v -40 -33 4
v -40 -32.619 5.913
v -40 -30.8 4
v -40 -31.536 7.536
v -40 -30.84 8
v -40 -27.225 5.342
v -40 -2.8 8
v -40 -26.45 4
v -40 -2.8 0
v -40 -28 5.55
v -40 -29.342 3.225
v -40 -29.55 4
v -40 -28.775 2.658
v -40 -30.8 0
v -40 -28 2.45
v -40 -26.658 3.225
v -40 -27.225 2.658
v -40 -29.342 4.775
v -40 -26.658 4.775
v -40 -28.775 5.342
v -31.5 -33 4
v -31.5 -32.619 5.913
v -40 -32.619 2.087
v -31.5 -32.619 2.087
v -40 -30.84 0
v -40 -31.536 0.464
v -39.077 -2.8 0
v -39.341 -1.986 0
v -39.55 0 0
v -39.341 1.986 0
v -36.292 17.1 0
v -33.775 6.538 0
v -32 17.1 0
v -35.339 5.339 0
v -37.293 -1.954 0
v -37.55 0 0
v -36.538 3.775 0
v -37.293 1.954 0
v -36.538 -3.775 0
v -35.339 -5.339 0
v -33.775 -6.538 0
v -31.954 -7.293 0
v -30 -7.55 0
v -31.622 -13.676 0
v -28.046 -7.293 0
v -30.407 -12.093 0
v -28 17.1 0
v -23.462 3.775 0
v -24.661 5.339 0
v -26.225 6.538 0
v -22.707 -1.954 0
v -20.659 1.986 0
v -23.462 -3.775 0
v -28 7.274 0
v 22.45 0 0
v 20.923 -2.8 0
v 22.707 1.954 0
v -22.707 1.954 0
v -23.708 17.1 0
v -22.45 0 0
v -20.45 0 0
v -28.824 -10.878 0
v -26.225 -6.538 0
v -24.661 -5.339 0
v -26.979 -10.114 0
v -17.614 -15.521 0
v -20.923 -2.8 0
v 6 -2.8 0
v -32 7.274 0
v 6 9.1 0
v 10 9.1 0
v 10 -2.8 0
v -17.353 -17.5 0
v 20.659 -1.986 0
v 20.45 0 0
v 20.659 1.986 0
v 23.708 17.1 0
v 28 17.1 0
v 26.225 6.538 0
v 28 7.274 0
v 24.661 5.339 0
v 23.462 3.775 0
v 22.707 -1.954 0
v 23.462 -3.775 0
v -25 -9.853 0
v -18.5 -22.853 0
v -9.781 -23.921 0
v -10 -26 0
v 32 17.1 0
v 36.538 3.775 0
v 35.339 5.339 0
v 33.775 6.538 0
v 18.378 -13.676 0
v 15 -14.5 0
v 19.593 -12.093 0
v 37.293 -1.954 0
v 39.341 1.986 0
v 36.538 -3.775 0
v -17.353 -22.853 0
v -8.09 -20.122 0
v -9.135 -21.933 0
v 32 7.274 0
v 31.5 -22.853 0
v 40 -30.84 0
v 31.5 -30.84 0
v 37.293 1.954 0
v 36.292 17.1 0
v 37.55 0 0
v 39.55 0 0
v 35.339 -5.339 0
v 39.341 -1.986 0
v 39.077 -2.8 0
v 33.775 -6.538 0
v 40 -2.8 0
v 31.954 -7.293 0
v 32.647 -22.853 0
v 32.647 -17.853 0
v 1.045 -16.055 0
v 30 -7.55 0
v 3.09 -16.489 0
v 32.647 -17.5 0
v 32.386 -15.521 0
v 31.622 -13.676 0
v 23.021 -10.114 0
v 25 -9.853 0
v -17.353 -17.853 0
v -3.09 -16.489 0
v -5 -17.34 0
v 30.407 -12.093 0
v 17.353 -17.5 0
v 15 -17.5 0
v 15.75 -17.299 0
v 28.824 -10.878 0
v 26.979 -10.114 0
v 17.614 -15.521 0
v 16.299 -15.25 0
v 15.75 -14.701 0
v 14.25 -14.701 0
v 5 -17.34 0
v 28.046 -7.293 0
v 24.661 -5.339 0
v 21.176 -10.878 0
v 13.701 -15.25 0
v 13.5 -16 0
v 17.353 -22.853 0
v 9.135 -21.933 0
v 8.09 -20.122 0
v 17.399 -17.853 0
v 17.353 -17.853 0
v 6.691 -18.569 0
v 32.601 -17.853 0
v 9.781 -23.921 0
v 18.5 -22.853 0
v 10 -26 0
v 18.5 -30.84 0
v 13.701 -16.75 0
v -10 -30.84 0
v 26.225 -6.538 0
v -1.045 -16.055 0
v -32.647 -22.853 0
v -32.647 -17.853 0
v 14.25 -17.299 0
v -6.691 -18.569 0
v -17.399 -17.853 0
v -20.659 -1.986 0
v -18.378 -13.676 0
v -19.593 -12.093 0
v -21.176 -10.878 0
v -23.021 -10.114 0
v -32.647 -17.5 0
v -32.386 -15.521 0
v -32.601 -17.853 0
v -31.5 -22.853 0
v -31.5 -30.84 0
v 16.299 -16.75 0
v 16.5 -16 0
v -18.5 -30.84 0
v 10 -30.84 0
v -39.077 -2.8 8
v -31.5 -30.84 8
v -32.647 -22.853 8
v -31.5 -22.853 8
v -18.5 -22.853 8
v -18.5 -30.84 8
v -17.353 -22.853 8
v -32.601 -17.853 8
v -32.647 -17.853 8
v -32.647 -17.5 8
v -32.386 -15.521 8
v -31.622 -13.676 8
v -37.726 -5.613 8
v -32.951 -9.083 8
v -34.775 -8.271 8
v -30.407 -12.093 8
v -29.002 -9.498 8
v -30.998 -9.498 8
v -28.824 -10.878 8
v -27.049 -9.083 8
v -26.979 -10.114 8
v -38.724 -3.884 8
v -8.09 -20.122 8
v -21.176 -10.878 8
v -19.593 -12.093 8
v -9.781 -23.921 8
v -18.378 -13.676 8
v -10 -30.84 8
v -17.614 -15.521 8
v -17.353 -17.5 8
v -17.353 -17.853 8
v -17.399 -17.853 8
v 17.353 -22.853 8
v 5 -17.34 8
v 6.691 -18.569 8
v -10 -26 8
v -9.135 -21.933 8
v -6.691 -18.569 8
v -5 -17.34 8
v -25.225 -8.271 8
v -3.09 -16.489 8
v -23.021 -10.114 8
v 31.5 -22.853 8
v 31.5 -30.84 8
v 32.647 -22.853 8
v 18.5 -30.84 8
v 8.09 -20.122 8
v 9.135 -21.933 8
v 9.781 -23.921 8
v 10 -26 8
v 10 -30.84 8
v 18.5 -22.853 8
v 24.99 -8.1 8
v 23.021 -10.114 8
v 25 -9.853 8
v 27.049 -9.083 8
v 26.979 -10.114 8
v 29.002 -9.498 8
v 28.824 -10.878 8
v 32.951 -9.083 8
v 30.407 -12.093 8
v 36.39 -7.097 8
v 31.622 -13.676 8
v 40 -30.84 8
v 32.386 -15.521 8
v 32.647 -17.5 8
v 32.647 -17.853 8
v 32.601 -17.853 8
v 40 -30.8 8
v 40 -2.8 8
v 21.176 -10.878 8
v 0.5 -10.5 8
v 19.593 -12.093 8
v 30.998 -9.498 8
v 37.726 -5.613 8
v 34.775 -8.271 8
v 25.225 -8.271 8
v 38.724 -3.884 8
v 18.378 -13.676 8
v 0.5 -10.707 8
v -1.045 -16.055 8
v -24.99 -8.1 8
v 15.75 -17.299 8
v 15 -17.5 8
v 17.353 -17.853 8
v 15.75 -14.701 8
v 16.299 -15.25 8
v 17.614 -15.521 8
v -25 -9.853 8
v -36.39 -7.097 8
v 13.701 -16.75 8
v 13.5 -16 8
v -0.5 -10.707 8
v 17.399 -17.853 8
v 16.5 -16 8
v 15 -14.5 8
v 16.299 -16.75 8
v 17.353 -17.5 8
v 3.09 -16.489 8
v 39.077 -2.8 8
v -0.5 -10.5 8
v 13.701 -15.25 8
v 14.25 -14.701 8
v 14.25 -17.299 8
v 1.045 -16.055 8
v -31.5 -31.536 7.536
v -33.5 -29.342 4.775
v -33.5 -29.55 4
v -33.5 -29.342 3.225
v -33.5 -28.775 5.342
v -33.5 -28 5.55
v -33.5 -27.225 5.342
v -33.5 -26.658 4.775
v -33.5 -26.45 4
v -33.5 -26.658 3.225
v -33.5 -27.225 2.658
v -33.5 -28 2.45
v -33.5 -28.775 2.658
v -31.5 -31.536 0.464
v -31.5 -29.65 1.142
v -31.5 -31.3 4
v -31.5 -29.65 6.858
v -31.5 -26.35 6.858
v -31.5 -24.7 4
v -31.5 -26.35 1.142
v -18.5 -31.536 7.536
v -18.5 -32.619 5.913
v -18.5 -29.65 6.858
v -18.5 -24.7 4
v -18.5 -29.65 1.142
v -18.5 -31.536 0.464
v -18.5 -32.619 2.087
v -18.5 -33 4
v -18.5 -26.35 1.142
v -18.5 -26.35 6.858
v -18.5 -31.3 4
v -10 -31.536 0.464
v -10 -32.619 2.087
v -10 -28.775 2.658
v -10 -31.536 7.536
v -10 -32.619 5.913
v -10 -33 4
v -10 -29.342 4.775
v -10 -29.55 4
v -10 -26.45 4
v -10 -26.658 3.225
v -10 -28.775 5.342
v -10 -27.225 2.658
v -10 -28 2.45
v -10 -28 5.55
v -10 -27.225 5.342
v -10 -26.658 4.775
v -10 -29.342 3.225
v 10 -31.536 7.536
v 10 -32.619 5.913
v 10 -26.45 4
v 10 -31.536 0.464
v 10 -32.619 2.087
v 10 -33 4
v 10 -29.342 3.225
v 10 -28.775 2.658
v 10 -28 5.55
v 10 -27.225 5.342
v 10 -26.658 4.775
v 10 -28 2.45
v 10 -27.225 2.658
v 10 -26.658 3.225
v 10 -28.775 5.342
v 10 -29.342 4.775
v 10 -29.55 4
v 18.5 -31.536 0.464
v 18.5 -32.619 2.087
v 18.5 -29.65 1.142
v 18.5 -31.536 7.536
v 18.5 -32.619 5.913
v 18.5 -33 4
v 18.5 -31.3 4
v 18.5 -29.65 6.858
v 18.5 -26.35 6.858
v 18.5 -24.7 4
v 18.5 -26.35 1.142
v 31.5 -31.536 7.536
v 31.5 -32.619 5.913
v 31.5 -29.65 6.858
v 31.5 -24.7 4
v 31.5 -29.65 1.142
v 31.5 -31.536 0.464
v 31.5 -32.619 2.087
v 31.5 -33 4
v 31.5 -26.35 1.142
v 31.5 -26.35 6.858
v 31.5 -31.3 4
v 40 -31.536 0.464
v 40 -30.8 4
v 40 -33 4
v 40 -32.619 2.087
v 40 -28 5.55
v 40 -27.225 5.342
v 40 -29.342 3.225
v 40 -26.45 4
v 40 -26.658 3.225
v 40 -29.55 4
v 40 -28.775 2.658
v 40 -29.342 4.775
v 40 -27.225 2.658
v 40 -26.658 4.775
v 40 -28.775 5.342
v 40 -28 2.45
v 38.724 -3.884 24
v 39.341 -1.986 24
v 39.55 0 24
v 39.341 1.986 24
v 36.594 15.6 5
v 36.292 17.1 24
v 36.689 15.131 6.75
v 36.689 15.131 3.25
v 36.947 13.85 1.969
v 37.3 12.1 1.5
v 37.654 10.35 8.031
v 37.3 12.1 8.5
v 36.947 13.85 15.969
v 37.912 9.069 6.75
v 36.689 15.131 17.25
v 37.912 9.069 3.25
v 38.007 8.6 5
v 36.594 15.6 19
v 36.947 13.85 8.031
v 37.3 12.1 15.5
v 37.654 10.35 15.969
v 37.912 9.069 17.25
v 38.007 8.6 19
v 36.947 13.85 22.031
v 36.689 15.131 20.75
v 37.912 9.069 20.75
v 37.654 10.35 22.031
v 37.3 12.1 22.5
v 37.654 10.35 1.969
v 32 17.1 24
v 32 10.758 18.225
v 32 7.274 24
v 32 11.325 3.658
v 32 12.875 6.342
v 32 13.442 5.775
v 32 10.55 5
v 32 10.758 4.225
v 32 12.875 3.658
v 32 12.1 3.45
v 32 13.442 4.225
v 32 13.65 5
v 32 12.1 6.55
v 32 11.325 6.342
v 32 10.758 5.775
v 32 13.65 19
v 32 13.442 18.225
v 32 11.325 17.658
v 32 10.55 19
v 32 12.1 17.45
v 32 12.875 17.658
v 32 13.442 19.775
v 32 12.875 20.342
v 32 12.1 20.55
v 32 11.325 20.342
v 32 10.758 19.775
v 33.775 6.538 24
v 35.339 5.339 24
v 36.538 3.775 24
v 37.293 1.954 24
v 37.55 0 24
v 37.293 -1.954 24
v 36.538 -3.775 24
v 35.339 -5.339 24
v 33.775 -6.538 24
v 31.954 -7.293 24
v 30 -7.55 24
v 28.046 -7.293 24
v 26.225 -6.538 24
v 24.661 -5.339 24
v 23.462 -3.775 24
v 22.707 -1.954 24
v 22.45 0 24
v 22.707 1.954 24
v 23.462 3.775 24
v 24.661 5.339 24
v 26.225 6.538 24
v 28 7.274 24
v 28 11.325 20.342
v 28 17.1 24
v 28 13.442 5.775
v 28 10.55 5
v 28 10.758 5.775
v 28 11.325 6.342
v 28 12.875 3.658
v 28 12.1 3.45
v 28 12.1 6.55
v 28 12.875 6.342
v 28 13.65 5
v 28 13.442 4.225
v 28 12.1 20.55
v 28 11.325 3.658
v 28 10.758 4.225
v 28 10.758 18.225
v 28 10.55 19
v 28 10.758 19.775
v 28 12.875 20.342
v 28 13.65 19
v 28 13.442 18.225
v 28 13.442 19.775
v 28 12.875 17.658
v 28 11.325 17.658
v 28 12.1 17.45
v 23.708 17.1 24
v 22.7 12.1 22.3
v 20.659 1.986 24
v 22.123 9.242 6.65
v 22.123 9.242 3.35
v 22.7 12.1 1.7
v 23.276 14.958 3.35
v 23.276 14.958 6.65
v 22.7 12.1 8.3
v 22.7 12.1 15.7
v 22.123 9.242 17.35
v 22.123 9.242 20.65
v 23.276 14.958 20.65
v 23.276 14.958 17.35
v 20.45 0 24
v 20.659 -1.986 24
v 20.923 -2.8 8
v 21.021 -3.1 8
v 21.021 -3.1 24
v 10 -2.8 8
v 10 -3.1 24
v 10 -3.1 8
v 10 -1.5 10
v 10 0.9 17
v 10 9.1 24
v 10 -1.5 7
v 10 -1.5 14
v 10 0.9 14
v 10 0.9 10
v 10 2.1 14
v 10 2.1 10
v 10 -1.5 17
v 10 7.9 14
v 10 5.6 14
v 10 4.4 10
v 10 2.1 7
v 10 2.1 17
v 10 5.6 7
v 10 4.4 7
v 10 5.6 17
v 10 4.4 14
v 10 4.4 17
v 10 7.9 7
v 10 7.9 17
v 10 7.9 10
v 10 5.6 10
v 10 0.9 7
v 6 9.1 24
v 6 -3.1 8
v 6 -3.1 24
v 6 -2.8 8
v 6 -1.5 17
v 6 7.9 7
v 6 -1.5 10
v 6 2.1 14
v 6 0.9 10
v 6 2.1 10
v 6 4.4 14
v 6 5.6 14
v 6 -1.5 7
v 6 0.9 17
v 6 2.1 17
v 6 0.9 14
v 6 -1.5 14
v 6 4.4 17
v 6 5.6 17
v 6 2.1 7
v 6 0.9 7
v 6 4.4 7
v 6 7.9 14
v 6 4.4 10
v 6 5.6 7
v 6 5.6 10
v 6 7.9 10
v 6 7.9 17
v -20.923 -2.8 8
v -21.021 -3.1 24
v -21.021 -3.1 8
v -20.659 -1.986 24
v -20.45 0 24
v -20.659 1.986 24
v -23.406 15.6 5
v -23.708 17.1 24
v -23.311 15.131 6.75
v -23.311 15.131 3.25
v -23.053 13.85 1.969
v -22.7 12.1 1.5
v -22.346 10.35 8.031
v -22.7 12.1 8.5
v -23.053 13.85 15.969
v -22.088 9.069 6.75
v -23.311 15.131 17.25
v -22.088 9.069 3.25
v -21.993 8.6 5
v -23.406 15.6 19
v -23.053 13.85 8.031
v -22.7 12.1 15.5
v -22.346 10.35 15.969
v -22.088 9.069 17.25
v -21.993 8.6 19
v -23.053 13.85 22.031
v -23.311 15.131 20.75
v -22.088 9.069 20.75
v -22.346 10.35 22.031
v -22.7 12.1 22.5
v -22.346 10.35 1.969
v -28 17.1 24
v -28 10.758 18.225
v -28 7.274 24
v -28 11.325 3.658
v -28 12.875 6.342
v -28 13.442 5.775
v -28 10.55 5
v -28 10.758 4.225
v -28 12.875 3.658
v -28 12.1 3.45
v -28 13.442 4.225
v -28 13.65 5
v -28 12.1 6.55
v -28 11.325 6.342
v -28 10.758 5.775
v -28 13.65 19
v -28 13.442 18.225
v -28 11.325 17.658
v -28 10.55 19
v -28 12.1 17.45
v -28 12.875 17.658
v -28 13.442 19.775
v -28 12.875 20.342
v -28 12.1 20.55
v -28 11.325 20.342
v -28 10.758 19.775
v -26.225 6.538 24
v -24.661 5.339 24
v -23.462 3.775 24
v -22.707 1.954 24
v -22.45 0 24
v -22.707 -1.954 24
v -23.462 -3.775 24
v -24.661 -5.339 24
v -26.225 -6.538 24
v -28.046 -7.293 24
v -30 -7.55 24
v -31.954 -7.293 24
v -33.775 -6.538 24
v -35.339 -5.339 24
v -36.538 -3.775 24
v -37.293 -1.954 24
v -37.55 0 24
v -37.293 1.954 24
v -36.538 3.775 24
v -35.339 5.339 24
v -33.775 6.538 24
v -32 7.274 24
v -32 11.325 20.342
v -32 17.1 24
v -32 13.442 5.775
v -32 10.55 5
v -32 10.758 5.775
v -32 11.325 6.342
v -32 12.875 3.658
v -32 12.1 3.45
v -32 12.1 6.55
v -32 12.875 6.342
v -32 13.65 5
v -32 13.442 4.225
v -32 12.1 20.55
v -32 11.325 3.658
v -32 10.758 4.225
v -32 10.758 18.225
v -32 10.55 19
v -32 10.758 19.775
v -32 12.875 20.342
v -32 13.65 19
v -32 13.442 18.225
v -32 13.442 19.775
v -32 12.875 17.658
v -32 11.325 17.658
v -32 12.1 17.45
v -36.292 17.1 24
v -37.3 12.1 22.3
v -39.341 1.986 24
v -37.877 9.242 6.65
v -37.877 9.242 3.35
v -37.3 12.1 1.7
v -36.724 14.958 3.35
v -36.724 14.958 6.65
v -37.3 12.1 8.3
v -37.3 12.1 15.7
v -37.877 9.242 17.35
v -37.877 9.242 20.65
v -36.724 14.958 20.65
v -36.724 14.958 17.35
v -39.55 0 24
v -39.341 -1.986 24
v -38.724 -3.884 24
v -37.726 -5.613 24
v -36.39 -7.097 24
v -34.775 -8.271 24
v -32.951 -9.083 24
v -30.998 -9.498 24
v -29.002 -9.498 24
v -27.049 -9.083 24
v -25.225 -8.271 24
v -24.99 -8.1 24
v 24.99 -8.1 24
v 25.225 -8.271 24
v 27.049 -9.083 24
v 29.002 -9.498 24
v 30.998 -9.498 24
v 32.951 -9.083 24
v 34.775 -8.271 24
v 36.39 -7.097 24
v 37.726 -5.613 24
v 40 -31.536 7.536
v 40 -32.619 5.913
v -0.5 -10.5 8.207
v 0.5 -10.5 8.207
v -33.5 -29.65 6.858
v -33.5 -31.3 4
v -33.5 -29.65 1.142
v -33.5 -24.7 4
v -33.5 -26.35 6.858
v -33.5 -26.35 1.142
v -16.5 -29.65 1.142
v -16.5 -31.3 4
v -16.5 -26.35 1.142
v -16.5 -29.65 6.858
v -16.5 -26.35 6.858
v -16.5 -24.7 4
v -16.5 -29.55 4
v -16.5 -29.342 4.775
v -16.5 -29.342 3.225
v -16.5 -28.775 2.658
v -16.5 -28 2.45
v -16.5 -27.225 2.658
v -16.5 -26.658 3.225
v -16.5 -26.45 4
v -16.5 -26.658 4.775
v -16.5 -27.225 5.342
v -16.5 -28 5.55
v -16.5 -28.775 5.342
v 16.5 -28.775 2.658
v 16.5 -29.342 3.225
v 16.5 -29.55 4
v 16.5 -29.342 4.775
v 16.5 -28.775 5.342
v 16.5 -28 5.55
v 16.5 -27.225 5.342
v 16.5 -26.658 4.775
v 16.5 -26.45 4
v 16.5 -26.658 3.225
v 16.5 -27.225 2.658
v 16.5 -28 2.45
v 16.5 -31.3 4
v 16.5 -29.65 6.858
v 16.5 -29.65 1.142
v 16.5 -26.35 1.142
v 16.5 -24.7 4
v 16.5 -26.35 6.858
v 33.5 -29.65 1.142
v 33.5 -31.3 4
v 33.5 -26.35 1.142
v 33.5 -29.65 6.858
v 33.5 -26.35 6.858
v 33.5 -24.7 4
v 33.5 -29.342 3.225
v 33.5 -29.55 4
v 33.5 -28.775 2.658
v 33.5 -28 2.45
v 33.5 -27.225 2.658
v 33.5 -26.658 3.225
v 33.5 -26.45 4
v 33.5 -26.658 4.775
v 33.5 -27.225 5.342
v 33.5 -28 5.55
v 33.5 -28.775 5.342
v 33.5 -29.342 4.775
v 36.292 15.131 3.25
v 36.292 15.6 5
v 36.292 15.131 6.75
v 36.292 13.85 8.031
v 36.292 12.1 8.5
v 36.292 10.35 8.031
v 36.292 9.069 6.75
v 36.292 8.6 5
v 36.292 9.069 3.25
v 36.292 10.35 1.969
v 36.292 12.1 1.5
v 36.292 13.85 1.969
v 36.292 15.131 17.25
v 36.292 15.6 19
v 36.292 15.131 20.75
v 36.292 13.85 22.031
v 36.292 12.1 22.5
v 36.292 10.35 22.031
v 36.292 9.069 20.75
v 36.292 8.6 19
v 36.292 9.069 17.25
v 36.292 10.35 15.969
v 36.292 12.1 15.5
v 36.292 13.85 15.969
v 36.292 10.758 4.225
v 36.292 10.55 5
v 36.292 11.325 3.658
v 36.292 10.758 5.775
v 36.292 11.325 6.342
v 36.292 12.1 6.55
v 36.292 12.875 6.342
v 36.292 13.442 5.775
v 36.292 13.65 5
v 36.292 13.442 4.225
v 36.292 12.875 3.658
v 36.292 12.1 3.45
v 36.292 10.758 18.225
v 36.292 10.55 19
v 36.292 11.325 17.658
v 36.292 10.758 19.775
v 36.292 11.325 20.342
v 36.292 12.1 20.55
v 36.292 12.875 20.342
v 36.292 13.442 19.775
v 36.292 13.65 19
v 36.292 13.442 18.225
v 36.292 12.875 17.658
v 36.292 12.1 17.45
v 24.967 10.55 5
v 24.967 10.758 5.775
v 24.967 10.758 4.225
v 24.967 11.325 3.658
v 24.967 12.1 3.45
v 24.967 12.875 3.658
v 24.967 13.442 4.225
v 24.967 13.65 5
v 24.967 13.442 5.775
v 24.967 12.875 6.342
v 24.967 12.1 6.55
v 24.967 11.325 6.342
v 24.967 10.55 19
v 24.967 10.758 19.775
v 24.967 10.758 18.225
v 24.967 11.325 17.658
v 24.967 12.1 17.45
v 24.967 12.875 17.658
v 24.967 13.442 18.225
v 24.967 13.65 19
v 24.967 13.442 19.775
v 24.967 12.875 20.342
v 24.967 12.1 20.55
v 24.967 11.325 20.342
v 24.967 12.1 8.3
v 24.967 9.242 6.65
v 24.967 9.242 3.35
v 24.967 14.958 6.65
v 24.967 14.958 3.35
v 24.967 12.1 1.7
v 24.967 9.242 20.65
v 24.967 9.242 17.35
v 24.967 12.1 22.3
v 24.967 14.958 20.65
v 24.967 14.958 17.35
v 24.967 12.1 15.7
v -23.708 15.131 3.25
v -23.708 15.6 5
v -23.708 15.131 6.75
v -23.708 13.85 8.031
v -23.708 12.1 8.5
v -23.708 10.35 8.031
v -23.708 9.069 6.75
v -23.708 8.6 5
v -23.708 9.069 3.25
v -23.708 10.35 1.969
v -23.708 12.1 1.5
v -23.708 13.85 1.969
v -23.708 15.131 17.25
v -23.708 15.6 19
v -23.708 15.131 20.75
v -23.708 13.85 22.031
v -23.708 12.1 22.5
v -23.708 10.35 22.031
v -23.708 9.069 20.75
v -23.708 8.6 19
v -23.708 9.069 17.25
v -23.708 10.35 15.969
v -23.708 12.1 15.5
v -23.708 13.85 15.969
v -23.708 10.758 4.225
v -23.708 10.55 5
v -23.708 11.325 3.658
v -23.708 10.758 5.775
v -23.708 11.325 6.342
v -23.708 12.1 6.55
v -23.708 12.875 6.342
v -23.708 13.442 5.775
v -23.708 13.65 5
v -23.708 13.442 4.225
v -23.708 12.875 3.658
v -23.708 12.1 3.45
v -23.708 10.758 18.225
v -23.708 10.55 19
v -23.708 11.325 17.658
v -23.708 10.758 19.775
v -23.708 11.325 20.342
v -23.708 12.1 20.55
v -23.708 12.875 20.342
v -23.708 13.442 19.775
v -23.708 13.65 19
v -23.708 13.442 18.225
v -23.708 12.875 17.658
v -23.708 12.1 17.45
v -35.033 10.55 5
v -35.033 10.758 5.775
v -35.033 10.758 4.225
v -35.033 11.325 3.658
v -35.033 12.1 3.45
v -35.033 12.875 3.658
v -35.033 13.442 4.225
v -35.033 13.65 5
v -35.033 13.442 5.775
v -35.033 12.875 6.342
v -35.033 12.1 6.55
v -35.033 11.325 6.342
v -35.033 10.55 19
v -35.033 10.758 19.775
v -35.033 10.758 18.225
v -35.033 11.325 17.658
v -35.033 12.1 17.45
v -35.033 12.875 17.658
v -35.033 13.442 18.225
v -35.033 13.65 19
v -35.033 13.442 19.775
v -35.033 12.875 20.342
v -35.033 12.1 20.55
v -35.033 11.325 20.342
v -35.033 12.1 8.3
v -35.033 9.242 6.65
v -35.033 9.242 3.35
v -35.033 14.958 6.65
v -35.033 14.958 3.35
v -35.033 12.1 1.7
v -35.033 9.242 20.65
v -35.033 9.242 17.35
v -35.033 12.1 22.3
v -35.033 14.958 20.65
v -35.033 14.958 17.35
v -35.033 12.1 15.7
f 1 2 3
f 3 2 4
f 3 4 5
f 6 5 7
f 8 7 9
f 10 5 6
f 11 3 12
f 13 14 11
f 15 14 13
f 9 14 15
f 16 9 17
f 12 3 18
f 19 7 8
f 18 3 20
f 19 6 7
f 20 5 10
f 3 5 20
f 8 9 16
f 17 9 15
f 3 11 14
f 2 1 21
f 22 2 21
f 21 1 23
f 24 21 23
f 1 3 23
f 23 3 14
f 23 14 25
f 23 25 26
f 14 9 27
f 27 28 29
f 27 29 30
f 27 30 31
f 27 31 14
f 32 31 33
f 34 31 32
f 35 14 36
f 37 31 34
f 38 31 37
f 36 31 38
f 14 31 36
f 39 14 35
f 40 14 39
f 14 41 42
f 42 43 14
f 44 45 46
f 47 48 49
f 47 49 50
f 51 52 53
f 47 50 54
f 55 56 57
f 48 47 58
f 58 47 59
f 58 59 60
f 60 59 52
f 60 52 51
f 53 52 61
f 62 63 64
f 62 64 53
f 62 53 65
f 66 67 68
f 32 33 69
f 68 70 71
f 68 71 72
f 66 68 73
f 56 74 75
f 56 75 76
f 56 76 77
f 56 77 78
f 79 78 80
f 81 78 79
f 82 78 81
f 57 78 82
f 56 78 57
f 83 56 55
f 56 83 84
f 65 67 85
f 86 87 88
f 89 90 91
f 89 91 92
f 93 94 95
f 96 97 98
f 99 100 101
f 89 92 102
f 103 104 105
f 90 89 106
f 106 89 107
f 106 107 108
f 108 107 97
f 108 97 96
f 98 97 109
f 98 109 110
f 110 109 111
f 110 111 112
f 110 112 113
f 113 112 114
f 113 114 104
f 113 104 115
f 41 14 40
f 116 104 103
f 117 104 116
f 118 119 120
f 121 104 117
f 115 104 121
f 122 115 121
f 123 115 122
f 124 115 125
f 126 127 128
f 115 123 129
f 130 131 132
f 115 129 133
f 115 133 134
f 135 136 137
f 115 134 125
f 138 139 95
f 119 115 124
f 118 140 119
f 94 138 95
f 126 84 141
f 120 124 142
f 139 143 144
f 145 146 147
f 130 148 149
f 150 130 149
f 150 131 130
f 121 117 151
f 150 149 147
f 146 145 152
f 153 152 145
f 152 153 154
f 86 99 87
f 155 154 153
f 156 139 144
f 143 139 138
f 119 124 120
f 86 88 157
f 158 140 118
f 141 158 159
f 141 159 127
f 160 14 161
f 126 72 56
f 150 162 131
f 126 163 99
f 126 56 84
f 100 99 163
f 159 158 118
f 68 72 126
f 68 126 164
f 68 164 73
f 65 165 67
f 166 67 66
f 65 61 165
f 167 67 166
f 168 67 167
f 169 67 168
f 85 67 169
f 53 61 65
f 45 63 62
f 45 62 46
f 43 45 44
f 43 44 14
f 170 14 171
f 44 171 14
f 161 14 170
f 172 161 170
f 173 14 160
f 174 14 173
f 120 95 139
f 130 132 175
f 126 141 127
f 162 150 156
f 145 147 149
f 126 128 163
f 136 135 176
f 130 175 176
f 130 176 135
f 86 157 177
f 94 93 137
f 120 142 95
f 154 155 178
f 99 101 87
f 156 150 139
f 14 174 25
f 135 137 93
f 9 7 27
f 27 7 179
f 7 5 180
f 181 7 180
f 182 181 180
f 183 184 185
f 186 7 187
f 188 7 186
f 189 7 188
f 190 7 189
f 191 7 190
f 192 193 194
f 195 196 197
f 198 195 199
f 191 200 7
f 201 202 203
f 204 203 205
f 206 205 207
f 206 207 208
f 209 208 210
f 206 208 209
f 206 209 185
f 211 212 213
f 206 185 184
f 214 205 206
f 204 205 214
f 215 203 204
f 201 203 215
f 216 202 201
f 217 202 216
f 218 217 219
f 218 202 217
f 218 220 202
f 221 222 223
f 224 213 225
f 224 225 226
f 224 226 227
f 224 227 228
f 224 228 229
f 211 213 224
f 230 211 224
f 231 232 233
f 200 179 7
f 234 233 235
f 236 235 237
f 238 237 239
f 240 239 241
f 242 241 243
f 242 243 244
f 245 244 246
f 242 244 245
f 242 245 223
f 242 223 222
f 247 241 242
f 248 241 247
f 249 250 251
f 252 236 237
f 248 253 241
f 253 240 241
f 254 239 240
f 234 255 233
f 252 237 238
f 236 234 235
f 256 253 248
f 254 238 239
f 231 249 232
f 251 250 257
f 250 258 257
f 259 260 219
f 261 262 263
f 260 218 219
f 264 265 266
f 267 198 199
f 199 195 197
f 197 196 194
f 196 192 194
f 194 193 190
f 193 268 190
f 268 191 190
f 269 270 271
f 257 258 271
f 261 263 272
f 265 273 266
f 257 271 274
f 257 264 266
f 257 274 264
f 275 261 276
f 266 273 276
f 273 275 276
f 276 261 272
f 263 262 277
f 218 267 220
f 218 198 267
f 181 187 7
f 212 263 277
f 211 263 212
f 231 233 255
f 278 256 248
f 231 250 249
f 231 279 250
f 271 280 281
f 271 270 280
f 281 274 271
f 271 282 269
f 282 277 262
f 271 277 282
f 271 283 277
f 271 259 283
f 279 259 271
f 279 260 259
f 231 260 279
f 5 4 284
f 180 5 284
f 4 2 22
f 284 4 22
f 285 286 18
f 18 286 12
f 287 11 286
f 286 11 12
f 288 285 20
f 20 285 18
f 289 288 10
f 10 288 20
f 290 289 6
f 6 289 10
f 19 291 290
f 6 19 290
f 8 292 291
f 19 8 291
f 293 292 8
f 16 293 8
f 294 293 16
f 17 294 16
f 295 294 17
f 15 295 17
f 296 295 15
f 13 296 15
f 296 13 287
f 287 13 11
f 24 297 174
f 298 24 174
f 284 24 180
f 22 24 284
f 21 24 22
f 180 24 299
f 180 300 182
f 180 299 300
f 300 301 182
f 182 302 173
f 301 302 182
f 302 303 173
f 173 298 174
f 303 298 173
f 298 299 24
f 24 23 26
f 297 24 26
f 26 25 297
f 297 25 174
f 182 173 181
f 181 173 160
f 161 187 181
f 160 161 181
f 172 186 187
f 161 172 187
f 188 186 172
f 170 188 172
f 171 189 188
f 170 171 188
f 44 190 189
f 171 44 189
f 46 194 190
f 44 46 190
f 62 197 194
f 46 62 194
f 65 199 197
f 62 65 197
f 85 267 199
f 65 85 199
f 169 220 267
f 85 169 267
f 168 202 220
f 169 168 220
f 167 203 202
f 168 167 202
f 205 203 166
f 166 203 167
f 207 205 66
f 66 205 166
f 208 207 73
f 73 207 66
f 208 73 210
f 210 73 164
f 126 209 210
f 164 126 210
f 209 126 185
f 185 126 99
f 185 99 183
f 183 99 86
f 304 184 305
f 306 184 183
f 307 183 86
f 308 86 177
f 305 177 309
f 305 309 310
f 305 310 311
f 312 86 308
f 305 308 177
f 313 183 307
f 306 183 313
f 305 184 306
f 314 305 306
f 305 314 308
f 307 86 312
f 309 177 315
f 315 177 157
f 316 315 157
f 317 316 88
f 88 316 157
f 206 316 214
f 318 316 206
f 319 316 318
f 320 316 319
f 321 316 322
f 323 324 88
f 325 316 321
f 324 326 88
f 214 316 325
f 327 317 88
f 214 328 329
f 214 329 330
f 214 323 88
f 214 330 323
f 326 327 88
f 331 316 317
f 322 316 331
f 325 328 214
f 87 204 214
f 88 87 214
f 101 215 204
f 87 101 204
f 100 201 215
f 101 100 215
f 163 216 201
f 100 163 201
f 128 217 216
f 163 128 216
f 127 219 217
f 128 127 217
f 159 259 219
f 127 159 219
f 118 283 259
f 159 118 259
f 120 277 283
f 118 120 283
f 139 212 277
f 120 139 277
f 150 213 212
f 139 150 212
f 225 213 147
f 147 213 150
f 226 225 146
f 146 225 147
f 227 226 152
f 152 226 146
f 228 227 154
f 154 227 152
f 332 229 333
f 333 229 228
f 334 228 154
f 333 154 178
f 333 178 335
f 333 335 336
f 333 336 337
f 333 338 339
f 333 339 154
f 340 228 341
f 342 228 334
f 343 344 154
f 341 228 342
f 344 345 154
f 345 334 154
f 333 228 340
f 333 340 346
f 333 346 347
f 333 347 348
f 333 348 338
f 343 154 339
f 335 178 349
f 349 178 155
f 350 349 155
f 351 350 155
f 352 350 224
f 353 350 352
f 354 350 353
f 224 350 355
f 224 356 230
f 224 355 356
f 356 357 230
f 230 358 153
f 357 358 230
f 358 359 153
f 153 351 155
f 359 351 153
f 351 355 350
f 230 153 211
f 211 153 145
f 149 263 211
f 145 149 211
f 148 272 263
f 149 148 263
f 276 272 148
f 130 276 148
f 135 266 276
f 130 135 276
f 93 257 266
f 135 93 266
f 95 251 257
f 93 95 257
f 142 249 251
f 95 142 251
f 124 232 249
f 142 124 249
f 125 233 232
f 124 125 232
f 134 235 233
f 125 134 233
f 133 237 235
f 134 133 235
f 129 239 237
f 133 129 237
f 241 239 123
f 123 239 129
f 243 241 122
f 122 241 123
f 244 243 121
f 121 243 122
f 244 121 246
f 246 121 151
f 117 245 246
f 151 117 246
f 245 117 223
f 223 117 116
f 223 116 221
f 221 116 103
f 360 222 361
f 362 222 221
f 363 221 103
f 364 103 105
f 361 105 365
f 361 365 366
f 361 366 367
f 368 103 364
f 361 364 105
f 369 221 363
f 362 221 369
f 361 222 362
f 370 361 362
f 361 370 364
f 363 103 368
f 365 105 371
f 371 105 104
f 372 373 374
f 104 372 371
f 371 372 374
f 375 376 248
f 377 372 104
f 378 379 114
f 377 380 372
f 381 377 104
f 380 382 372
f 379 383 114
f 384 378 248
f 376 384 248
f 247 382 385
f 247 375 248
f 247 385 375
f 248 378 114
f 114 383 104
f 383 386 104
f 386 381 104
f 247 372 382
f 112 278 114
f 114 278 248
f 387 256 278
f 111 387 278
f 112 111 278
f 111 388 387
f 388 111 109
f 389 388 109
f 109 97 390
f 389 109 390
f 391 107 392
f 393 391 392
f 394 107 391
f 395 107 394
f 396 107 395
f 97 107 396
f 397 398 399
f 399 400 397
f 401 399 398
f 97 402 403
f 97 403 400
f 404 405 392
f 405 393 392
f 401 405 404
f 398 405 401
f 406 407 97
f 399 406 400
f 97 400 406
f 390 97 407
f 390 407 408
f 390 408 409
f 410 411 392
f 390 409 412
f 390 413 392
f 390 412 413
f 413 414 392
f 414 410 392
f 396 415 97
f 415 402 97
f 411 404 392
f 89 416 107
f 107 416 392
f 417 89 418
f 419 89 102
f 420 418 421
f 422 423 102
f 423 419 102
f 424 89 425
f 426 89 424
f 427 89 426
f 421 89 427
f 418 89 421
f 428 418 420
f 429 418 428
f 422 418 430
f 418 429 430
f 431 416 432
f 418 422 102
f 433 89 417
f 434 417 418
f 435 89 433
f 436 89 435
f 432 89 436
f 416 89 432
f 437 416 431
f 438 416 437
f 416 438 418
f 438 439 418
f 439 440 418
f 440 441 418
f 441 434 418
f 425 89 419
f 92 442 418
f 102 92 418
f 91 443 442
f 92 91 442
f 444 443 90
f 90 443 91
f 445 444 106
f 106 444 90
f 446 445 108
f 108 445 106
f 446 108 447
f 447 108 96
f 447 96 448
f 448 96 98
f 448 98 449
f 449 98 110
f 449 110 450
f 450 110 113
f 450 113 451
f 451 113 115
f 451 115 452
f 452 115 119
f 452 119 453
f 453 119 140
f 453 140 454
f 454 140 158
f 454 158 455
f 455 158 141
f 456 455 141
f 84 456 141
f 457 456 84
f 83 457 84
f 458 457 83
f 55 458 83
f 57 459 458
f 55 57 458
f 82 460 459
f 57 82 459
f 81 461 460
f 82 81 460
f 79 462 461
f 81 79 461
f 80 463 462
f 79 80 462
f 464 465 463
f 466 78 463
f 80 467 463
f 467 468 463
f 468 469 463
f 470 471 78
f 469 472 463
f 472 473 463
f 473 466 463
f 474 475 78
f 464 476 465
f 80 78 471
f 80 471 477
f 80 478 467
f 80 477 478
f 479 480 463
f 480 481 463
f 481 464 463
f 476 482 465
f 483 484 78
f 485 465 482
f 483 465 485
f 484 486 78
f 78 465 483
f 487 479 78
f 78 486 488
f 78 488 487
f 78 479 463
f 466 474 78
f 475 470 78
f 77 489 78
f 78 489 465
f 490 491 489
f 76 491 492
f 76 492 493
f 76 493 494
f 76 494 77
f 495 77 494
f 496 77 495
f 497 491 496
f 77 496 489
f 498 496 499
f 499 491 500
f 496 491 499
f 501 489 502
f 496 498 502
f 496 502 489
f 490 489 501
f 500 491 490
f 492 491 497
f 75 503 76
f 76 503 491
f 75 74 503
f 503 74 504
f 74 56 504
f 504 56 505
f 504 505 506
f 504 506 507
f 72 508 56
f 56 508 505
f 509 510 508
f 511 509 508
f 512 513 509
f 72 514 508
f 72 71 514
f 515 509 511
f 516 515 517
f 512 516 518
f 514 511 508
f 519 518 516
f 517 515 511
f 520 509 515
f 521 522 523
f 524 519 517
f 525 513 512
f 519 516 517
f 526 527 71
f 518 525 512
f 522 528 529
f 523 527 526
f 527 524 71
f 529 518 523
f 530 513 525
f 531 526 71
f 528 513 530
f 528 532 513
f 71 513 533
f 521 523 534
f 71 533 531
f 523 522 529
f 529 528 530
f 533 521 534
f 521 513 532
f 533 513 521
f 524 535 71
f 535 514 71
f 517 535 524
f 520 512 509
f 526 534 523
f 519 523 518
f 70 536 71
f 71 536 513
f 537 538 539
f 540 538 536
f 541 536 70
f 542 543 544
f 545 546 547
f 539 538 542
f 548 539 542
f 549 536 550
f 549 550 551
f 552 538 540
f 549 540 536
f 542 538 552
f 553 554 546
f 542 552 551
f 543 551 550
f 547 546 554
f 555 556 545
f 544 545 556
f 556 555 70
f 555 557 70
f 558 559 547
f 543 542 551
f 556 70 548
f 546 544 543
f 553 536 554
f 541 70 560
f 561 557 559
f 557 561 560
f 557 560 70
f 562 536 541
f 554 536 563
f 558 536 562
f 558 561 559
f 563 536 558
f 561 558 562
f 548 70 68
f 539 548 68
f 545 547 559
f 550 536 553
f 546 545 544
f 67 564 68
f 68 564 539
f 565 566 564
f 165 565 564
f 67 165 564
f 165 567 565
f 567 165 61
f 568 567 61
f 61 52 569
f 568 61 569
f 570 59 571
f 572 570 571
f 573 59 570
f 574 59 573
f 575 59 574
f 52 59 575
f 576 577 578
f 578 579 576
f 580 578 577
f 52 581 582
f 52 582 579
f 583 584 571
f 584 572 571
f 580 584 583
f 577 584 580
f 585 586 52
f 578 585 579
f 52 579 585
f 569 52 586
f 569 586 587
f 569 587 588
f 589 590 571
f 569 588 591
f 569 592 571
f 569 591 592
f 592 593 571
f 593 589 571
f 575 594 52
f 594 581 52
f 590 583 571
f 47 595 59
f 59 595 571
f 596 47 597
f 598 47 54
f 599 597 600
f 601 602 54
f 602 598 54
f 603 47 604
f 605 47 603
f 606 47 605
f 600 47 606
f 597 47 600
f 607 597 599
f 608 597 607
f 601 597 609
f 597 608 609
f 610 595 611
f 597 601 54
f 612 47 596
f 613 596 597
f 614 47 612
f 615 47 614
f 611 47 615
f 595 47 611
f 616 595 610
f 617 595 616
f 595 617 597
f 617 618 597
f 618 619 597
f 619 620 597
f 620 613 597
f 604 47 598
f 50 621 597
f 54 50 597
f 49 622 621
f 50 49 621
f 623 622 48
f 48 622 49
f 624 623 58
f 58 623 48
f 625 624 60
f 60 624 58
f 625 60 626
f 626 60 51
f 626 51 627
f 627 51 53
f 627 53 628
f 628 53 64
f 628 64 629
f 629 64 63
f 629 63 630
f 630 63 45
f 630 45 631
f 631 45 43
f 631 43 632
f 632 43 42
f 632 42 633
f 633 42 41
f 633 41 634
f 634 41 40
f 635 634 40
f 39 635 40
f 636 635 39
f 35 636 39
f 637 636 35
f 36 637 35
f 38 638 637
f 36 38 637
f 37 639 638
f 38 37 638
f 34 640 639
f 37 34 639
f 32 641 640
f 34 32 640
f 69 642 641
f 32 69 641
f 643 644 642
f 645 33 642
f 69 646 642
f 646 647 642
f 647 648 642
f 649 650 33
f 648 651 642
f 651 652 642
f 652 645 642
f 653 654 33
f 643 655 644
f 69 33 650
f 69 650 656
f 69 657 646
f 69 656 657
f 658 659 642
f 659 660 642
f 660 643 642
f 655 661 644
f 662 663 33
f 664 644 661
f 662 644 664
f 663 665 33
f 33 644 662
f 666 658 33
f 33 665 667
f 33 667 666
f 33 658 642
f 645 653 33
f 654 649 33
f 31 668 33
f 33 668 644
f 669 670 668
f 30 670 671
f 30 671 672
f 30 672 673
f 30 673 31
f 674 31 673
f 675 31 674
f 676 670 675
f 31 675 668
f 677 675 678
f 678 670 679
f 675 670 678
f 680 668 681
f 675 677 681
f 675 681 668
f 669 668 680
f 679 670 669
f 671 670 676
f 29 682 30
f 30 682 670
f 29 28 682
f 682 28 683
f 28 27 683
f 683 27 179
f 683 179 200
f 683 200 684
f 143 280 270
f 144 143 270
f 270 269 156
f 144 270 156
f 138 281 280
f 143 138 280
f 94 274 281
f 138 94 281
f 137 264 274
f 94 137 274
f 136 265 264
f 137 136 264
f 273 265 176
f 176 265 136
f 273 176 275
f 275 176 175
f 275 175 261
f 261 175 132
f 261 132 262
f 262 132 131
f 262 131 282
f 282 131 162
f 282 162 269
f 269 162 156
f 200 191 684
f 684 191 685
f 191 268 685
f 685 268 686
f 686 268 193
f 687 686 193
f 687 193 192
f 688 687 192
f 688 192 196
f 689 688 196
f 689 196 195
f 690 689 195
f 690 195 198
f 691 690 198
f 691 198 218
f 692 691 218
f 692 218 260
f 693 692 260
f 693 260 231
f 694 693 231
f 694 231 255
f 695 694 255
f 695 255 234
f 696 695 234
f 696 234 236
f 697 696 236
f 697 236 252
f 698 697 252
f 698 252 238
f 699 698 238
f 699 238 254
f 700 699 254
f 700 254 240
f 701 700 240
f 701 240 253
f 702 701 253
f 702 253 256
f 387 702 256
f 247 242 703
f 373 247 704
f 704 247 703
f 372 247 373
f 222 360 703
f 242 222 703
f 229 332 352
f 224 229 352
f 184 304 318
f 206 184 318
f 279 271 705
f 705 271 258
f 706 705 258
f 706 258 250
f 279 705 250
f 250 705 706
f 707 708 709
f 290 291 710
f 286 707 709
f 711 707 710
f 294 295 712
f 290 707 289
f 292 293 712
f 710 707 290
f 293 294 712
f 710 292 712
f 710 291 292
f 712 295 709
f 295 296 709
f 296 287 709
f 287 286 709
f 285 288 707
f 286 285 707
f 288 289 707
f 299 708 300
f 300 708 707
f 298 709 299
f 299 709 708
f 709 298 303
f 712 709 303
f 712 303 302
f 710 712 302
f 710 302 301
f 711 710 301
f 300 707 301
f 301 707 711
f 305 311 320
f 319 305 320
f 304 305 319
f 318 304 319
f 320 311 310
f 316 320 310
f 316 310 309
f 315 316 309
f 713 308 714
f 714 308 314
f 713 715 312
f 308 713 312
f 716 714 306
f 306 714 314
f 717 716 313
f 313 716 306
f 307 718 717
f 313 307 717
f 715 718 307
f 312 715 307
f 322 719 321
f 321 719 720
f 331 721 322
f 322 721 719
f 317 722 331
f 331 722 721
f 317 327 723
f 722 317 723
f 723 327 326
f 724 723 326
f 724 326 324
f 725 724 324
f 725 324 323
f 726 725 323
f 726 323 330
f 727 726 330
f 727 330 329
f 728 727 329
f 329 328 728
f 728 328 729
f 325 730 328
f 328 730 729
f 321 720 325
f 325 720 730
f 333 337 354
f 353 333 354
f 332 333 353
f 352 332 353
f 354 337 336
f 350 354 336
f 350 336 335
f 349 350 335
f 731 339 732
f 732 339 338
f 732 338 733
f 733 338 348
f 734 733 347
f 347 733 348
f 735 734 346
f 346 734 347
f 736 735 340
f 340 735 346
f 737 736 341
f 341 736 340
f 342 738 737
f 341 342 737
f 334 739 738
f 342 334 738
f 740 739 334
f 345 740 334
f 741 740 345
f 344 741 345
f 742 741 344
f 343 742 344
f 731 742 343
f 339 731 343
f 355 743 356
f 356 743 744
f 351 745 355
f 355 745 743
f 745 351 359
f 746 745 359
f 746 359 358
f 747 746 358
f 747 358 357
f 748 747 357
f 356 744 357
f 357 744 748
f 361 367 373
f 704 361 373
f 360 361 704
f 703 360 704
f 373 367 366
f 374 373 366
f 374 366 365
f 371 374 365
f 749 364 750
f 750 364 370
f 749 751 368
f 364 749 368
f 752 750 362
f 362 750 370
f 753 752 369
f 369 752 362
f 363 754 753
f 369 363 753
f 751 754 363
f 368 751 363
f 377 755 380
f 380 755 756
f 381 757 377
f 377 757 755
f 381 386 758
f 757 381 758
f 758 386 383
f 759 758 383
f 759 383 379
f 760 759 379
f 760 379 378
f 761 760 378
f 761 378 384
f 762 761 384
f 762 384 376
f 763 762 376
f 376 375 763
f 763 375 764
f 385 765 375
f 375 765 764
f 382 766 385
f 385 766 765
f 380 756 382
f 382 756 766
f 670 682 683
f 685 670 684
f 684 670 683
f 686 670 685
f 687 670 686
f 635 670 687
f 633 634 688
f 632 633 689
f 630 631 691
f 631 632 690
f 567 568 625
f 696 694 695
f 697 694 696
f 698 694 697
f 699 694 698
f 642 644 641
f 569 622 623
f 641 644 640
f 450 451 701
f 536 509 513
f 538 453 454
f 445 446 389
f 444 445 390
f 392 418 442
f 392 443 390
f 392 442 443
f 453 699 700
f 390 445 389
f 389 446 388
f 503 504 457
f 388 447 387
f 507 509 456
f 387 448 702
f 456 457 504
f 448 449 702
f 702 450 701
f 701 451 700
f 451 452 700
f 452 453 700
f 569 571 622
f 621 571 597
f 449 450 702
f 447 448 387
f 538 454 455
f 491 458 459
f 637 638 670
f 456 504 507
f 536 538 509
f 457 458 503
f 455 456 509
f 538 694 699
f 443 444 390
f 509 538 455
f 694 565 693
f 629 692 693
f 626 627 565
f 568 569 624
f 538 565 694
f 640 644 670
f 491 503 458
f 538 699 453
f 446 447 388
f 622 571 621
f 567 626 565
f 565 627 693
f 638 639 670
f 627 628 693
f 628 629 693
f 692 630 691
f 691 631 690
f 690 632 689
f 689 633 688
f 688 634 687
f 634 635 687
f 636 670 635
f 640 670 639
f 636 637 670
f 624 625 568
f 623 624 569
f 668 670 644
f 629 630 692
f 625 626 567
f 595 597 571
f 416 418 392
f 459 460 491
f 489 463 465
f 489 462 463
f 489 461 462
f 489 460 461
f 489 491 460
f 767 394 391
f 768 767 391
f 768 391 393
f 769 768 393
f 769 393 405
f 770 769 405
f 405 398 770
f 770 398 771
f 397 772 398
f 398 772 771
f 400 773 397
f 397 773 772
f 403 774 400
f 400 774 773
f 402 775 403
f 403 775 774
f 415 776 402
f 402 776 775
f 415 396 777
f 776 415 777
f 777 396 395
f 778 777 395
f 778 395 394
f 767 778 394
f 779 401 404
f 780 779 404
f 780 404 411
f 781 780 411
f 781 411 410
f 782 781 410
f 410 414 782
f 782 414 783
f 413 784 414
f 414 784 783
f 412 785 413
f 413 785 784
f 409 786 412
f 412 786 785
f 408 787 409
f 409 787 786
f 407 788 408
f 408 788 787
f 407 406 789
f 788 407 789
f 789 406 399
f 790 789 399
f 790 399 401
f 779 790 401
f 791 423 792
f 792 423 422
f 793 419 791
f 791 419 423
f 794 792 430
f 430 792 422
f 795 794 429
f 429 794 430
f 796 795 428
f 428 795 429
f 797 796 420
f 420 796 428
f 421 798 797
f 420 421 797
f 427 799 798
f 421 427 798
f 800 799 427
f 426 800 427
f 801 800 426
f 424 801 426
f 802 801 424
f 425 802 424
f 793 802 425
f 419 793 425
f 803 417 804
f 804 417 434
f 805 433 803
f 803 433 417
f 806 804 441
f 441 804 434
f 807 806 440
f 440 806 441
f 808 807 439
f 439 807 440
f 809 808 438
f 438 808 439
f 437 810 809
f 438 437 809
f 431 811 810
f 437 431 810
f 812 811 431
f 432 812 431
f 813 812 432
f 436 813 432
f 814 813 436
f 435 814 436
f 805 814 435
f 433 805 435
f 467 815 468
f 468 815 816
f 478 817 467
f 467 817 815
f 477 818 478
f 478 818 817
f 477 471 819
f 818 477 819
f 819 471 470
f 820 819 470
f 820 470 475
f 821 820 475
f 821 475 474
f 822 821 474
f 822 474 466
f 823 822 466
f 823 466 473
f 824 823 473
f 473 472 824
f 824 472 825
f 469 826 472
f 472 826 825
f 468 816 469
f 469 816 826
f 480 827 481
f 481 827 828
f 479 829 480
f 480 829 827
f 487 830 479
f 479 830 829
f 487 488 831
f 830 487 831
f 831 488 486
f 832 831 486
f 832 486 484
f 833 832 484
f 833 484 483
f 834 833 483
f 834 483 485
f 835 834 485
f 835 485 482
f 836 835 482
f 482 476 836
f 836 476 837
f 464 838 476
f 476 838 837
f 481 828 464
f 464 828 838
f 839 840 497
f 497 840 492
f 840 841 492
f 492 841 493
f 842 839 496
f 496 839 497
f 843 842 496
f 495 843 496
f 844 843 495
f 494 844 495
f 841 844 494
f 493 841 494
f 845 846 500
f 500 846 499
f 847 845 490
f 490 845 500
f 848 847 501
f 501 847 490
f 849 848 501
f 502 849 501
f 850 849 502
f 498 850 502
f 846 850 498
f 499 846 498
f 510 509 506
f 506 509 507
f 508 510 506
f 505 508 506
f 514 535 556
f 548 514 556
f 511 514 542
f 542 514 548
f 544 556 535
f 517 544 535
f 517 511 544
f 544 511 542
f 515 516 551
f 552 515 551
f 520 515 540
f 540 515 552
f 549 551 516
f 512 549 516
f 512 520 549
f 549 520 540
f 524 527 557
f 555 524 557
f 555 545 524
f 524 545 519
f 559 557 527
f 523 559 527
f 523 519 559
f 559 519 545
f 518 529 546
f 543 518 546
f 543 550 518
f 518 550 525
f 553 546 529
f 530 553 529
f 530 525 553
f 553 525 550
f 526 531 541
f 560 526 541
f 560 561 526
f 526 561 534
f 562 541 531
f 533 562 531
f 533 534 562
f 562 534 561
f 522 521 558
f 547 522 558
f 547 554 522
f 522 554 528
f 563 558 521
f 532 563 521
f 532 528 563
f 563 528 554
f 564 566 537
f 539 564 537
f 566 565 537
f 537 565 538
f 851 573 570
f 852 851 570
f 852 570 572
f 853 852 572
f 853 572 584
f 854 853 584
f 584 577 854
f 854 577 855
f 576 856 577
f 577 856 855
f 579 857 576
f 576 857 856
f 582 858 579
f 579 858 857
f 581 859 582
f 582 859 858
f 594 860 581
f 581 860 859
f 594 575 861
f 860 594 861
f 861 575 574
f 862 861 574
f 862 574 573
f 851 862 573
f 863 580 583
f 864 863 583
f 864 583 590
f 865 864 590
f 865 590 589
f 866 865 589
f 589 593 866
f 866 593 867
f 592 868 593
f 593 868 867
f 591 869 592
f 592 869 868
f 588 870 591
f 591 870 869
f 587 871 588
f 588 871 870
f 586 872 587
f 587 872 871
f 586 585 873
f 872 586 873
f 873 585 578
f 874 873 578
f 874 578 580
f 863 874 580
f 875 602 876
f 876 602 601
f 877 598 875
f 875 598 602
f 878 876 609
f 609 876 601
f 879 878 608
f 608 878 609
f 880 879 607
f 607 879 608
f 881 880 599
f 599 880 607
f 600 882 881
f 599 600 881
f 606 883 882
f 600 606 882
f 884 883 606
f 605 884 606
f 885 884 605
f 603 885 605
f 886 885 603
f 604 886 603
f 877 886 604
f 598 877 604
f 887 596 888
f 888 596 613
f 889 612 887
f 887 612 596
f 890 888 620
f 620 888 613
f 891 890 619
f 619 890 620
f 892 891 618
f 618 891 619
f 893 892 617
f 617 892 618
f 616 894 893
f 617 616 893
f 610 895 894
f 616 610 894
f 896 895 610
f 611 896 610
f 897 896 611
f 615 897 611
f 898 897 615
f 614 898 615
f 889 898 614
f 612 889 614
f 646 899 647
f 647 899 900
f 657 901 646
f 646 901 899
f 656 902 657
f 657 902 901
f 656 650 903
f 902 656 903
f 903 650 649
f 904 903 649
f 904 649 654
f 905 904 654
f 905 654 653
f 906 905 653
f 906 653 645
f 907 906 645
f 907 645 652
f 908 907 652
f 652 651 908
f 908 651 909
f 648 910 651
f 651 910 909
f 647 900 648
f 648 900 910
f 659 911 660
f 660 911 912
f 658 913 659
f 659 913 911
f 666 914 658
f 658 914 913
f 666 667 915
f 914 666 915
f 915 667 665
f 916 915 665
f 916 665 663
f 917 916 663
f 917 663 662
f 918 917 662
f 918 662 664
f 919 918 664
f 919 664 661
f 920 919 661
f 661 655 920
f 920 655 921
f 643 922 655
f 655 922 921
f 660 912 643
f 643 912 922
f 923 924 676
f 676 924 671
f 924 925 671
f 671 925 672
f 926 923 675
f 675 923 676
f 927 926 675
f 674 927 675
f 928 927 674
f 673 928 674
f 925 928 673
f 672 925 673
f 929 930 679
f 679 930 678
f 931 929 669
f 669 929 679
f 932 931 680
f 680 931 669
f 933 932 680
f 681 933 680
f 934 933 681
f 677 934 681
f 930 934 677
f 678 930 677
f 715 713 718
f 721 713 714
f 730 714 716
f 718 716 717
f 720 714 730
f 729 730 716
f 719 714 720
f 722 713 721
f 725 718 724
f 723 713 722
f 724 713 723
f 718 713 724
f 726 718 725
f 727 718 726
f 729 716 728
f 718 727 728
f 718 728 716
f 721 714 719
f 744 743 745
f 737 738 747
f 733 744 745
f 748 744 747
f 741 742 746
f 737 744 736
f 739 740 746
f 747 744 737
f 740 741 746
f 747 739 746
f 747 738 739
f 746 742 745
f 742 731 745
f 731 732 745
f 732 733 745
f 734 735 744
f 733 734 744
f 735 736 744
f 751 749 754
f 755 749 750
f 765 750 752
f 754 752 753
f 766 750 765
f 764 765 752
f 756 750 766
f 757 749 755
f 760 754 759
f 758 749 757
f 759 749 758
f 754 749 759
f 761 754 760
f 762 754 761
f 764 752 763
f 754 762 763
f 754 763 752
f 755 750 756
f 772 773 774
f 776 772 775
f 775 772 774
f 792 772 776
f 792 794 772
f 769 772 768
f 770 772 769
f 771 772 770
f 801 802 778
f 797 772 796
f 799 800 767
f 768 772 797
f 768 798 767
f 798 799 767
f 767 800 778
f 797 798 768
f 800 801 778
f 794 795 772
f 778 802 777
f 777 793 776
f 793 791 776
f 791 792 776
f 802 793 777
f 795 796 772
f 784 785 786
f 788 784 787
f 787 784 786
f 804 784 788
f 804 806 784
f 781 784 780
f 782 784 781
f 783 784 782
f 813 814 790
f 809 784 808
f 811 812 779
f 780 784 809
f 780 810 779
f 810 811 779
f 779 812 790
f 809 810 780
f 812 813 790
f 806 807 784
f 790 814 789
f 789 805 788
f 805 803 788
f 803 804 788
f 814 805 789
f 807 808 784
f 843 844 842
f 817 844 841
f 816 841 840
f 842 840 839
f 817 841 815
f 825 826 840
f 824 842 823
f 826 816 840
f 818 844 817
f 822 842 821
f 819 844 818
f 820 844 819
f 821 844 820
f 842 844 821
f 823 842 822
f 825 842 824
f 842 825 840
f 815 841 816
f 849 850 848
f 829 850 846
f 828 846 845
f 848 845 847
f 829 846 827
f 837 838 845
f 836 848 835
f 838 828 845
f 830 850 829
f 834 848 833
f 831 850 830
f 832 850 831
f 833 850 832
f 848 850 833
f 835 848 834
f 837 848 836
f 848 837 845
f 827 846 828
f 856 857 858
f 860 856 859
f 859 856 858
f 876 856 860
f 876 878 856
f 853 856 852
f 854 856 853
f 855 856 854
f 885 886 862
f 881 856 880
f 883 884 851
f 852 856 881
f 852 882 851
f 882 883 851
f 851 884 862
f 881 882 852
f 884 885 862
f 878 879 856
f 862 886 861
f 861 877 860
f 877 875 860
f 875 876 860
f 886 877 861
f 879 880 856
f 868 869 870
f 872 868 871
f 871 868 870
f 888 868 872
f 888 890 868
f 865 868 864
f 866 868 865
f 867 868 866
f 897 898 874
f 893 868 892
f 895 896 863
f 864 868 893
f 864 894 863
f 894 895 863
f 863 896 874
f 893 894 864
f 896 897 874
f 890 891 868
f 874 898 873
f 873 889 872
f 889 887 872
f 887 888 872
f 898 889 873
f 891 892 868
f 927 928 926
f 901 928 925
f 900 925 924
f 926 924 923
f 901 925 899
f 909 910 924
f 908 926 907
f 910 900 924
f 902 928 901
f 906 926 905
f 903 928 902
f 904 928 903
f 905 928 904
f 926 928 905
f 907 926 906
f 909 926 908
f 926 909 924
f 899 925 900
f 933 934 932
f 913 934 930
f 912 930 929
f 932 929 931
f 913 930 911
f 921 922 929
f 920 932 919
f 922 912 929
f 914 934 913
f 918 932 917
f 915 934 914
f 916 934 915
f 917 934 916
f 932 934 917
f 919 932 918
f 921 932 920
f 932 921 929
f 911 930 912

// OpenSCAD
// file: functions.scad
parallel_joints(80, 13, 25, 0, true, 26);

module parallel_joints(width, cutout, offset, reinforced, bridge, length) {
  middle = 2*offset - width/2;
  difference() {
	// cutouts
    union() {
      intersection() {
        cube([width, 20, 8], center=true);
        rotate([0, 90, 0]) cylinder(r=5, h=width, center=true);
      }
		// bridge
      intersection() {
        translate([0, 18, 4]) rotate([45, 0, 0])
          cube([width, reinforced, reinforced], center=true);
        if (bridge) 
          translate([0, 0, 20]) cube([width, 35, 40], center=true);
      }
		// base behind cutouts
      translate([0, length / 2.5, 0]) cube([width, length, 8], center=true);
    }
	// screwhole
    rotate([0, 90, 0]) cylinder(r=1.55, h=width + 1, center=true, $fn=12);

    for (x = [-offset, offset]) {
      translate([x, 10.5, 0])
        cylinder(r=cutout / 1.7, h=100, center=true, $fn=24);
      translate([x, cutout / 1.7, 0])
        cube([cutout / 0.85, 5, 100], center=true);
      translate([x, 1.5, 0])
        cube([cutout, 15, 100], center=true);
      translate([x, 0, 0]) rotate([0, 90, 0]) rotate([0, 0, 30])
        cylinder(r=3.3, h=17, center=true, $fn=6);
    }
    translate([0, 2, 0]) cylinder(r=middle, h=100, center=true);
    translate([0, -8, 0]) cube([2*middle, 20, 100], center=true);
  }
}
// main file
use <functions.scad>;

width = 80;
height = 24;
bearing_hole_id = 15.1;

offset = 25;
cutout = 13;
middle = 2*offset - width/2;

module lm8uu_mount(d, h) {
  union() {
    difference() {
      intersection() {
        cylinder(r=bearing_hole_id / 2 + 2, h=h, center=true);
        translate([0, -8, 0]) cube([19, 13, h+1], center=true);
      }
      cylinder(r=d/2, h=h+1, center=true);
    }
  }
}

module acetal_bushing_mount(d, h) {
  union() {
    difference() {
      hull() {
        cylinder(r=bearing_hole_id / 2 + 2, h=h, center=true);
        translate([0, bearing_hole_id - 3, 0]) cube([bearing_hole_id * 5 / 6, 10, h], center=true);
      }
      cylinder(r=d/2, h=h+1, center=true);
      // cutout support bracket
      translate([0, bearing_hole_id - 3.5, 0]) cube([4, 12, h+1], center=true);
      translate([0, bearing_hole_id - 3, 7])
      // cutout screw holes
      rotate([0, 90, 0]) cylinder(r=1.55, h=80, center=true, $fn=12);
      translate([0, bearing_hole_id - 3, -7])
      rotate([0, 90, 0]) cylinder(r=1.55, h=80, center=true, $fn=12);
      // washer cutouts to keep screws parallel
      translate([bearing_hole_id * 5 / 12 + 1, bearing_hole_id - 3, 7])
      rotate([0, 90, 0]) cylinder(r=3.5, h=2, center=true, $fn=12);
      translate([bearing_hole_id * 5 / 12 + 1, bearing_hole_id - 3, -7])
      rotate([0, 90, 0]) cylinder(r=3.5, h=2, center=true, $fn=12);
      // captured nut holes
      translate([bearing_hole_id - bearing_hole_id * 4 / 3 - 3, bearing_hole_id - 3, 7])
      rotate([0, 90, 0]) cylinder(r=3.3, h=6, center=true, $fn=6);
      translate([bearing_hole_id - bearing_hole_id * 4 / 3 - 3, bearing_hole_id - 3, -7])
      rotate([0, 90, 0]) cylinder(r=3.3, h=6, center=true, $fn=6);
    }
  }
}

module belt_mount() {
  difference() {
    union() {
      difference() {
        translate([8, 2, 0]) cube([4, 13, height], center=true);
        for (z = [-3.5, 3.5])
          translate([8, 5, z])
            cube([5, 13, 3], center=true);
      }
      for (y = [1.5, 5, 8.5]) {
        translate([8, y, 0]) cube([4, 1.2, height], center=true);
      }
    }
  }
}

module carriage(acetal = false) {
  union() {
    for (x = [-30, 30]) {
      translate([x, 0, 0])
        if (acetal) {
          acetal_bushing_mount(d=bearing_hole_id, h=24);
        } else {
          lm8uu_mount(d=bearing_hole_id, h=24);
        }
    }
  }
  belt_mount();
  difference() {
    union() {
      translate([0, -5.6, 0])
        cube([50, 5, height], center=true);
      translate([0, -28, -height/2+4])
        parallel_joints(width, cutout, offset, true, true, 28);
    }
    // Screw hole for adjustable top endstop.
    translate([15, -16, -height/2+4])
      cylinder(r=1.5, h=20, center=true, $fn=12);
    for (x = [-30, 30]) {
      translate([x, 0, 0])
        cylinder(r=8, h=height+1, center=true);
        if (!acetal) {
        // Zip tie tunnels.
        for (z = [-height/2+4, height/2-4])
        translate([x, 0, z])
          cylinder(r=13, h=3, center=true);
         }
    }
  }
}

translate([0, 0, height/2]) carriage(acetal = true);

// Uncomment the following lines to check endstop alignment.
// use <idler_end.scad>;
// translate([0, 0, -20]) rotate([180, 0, 0]) idler_end();
